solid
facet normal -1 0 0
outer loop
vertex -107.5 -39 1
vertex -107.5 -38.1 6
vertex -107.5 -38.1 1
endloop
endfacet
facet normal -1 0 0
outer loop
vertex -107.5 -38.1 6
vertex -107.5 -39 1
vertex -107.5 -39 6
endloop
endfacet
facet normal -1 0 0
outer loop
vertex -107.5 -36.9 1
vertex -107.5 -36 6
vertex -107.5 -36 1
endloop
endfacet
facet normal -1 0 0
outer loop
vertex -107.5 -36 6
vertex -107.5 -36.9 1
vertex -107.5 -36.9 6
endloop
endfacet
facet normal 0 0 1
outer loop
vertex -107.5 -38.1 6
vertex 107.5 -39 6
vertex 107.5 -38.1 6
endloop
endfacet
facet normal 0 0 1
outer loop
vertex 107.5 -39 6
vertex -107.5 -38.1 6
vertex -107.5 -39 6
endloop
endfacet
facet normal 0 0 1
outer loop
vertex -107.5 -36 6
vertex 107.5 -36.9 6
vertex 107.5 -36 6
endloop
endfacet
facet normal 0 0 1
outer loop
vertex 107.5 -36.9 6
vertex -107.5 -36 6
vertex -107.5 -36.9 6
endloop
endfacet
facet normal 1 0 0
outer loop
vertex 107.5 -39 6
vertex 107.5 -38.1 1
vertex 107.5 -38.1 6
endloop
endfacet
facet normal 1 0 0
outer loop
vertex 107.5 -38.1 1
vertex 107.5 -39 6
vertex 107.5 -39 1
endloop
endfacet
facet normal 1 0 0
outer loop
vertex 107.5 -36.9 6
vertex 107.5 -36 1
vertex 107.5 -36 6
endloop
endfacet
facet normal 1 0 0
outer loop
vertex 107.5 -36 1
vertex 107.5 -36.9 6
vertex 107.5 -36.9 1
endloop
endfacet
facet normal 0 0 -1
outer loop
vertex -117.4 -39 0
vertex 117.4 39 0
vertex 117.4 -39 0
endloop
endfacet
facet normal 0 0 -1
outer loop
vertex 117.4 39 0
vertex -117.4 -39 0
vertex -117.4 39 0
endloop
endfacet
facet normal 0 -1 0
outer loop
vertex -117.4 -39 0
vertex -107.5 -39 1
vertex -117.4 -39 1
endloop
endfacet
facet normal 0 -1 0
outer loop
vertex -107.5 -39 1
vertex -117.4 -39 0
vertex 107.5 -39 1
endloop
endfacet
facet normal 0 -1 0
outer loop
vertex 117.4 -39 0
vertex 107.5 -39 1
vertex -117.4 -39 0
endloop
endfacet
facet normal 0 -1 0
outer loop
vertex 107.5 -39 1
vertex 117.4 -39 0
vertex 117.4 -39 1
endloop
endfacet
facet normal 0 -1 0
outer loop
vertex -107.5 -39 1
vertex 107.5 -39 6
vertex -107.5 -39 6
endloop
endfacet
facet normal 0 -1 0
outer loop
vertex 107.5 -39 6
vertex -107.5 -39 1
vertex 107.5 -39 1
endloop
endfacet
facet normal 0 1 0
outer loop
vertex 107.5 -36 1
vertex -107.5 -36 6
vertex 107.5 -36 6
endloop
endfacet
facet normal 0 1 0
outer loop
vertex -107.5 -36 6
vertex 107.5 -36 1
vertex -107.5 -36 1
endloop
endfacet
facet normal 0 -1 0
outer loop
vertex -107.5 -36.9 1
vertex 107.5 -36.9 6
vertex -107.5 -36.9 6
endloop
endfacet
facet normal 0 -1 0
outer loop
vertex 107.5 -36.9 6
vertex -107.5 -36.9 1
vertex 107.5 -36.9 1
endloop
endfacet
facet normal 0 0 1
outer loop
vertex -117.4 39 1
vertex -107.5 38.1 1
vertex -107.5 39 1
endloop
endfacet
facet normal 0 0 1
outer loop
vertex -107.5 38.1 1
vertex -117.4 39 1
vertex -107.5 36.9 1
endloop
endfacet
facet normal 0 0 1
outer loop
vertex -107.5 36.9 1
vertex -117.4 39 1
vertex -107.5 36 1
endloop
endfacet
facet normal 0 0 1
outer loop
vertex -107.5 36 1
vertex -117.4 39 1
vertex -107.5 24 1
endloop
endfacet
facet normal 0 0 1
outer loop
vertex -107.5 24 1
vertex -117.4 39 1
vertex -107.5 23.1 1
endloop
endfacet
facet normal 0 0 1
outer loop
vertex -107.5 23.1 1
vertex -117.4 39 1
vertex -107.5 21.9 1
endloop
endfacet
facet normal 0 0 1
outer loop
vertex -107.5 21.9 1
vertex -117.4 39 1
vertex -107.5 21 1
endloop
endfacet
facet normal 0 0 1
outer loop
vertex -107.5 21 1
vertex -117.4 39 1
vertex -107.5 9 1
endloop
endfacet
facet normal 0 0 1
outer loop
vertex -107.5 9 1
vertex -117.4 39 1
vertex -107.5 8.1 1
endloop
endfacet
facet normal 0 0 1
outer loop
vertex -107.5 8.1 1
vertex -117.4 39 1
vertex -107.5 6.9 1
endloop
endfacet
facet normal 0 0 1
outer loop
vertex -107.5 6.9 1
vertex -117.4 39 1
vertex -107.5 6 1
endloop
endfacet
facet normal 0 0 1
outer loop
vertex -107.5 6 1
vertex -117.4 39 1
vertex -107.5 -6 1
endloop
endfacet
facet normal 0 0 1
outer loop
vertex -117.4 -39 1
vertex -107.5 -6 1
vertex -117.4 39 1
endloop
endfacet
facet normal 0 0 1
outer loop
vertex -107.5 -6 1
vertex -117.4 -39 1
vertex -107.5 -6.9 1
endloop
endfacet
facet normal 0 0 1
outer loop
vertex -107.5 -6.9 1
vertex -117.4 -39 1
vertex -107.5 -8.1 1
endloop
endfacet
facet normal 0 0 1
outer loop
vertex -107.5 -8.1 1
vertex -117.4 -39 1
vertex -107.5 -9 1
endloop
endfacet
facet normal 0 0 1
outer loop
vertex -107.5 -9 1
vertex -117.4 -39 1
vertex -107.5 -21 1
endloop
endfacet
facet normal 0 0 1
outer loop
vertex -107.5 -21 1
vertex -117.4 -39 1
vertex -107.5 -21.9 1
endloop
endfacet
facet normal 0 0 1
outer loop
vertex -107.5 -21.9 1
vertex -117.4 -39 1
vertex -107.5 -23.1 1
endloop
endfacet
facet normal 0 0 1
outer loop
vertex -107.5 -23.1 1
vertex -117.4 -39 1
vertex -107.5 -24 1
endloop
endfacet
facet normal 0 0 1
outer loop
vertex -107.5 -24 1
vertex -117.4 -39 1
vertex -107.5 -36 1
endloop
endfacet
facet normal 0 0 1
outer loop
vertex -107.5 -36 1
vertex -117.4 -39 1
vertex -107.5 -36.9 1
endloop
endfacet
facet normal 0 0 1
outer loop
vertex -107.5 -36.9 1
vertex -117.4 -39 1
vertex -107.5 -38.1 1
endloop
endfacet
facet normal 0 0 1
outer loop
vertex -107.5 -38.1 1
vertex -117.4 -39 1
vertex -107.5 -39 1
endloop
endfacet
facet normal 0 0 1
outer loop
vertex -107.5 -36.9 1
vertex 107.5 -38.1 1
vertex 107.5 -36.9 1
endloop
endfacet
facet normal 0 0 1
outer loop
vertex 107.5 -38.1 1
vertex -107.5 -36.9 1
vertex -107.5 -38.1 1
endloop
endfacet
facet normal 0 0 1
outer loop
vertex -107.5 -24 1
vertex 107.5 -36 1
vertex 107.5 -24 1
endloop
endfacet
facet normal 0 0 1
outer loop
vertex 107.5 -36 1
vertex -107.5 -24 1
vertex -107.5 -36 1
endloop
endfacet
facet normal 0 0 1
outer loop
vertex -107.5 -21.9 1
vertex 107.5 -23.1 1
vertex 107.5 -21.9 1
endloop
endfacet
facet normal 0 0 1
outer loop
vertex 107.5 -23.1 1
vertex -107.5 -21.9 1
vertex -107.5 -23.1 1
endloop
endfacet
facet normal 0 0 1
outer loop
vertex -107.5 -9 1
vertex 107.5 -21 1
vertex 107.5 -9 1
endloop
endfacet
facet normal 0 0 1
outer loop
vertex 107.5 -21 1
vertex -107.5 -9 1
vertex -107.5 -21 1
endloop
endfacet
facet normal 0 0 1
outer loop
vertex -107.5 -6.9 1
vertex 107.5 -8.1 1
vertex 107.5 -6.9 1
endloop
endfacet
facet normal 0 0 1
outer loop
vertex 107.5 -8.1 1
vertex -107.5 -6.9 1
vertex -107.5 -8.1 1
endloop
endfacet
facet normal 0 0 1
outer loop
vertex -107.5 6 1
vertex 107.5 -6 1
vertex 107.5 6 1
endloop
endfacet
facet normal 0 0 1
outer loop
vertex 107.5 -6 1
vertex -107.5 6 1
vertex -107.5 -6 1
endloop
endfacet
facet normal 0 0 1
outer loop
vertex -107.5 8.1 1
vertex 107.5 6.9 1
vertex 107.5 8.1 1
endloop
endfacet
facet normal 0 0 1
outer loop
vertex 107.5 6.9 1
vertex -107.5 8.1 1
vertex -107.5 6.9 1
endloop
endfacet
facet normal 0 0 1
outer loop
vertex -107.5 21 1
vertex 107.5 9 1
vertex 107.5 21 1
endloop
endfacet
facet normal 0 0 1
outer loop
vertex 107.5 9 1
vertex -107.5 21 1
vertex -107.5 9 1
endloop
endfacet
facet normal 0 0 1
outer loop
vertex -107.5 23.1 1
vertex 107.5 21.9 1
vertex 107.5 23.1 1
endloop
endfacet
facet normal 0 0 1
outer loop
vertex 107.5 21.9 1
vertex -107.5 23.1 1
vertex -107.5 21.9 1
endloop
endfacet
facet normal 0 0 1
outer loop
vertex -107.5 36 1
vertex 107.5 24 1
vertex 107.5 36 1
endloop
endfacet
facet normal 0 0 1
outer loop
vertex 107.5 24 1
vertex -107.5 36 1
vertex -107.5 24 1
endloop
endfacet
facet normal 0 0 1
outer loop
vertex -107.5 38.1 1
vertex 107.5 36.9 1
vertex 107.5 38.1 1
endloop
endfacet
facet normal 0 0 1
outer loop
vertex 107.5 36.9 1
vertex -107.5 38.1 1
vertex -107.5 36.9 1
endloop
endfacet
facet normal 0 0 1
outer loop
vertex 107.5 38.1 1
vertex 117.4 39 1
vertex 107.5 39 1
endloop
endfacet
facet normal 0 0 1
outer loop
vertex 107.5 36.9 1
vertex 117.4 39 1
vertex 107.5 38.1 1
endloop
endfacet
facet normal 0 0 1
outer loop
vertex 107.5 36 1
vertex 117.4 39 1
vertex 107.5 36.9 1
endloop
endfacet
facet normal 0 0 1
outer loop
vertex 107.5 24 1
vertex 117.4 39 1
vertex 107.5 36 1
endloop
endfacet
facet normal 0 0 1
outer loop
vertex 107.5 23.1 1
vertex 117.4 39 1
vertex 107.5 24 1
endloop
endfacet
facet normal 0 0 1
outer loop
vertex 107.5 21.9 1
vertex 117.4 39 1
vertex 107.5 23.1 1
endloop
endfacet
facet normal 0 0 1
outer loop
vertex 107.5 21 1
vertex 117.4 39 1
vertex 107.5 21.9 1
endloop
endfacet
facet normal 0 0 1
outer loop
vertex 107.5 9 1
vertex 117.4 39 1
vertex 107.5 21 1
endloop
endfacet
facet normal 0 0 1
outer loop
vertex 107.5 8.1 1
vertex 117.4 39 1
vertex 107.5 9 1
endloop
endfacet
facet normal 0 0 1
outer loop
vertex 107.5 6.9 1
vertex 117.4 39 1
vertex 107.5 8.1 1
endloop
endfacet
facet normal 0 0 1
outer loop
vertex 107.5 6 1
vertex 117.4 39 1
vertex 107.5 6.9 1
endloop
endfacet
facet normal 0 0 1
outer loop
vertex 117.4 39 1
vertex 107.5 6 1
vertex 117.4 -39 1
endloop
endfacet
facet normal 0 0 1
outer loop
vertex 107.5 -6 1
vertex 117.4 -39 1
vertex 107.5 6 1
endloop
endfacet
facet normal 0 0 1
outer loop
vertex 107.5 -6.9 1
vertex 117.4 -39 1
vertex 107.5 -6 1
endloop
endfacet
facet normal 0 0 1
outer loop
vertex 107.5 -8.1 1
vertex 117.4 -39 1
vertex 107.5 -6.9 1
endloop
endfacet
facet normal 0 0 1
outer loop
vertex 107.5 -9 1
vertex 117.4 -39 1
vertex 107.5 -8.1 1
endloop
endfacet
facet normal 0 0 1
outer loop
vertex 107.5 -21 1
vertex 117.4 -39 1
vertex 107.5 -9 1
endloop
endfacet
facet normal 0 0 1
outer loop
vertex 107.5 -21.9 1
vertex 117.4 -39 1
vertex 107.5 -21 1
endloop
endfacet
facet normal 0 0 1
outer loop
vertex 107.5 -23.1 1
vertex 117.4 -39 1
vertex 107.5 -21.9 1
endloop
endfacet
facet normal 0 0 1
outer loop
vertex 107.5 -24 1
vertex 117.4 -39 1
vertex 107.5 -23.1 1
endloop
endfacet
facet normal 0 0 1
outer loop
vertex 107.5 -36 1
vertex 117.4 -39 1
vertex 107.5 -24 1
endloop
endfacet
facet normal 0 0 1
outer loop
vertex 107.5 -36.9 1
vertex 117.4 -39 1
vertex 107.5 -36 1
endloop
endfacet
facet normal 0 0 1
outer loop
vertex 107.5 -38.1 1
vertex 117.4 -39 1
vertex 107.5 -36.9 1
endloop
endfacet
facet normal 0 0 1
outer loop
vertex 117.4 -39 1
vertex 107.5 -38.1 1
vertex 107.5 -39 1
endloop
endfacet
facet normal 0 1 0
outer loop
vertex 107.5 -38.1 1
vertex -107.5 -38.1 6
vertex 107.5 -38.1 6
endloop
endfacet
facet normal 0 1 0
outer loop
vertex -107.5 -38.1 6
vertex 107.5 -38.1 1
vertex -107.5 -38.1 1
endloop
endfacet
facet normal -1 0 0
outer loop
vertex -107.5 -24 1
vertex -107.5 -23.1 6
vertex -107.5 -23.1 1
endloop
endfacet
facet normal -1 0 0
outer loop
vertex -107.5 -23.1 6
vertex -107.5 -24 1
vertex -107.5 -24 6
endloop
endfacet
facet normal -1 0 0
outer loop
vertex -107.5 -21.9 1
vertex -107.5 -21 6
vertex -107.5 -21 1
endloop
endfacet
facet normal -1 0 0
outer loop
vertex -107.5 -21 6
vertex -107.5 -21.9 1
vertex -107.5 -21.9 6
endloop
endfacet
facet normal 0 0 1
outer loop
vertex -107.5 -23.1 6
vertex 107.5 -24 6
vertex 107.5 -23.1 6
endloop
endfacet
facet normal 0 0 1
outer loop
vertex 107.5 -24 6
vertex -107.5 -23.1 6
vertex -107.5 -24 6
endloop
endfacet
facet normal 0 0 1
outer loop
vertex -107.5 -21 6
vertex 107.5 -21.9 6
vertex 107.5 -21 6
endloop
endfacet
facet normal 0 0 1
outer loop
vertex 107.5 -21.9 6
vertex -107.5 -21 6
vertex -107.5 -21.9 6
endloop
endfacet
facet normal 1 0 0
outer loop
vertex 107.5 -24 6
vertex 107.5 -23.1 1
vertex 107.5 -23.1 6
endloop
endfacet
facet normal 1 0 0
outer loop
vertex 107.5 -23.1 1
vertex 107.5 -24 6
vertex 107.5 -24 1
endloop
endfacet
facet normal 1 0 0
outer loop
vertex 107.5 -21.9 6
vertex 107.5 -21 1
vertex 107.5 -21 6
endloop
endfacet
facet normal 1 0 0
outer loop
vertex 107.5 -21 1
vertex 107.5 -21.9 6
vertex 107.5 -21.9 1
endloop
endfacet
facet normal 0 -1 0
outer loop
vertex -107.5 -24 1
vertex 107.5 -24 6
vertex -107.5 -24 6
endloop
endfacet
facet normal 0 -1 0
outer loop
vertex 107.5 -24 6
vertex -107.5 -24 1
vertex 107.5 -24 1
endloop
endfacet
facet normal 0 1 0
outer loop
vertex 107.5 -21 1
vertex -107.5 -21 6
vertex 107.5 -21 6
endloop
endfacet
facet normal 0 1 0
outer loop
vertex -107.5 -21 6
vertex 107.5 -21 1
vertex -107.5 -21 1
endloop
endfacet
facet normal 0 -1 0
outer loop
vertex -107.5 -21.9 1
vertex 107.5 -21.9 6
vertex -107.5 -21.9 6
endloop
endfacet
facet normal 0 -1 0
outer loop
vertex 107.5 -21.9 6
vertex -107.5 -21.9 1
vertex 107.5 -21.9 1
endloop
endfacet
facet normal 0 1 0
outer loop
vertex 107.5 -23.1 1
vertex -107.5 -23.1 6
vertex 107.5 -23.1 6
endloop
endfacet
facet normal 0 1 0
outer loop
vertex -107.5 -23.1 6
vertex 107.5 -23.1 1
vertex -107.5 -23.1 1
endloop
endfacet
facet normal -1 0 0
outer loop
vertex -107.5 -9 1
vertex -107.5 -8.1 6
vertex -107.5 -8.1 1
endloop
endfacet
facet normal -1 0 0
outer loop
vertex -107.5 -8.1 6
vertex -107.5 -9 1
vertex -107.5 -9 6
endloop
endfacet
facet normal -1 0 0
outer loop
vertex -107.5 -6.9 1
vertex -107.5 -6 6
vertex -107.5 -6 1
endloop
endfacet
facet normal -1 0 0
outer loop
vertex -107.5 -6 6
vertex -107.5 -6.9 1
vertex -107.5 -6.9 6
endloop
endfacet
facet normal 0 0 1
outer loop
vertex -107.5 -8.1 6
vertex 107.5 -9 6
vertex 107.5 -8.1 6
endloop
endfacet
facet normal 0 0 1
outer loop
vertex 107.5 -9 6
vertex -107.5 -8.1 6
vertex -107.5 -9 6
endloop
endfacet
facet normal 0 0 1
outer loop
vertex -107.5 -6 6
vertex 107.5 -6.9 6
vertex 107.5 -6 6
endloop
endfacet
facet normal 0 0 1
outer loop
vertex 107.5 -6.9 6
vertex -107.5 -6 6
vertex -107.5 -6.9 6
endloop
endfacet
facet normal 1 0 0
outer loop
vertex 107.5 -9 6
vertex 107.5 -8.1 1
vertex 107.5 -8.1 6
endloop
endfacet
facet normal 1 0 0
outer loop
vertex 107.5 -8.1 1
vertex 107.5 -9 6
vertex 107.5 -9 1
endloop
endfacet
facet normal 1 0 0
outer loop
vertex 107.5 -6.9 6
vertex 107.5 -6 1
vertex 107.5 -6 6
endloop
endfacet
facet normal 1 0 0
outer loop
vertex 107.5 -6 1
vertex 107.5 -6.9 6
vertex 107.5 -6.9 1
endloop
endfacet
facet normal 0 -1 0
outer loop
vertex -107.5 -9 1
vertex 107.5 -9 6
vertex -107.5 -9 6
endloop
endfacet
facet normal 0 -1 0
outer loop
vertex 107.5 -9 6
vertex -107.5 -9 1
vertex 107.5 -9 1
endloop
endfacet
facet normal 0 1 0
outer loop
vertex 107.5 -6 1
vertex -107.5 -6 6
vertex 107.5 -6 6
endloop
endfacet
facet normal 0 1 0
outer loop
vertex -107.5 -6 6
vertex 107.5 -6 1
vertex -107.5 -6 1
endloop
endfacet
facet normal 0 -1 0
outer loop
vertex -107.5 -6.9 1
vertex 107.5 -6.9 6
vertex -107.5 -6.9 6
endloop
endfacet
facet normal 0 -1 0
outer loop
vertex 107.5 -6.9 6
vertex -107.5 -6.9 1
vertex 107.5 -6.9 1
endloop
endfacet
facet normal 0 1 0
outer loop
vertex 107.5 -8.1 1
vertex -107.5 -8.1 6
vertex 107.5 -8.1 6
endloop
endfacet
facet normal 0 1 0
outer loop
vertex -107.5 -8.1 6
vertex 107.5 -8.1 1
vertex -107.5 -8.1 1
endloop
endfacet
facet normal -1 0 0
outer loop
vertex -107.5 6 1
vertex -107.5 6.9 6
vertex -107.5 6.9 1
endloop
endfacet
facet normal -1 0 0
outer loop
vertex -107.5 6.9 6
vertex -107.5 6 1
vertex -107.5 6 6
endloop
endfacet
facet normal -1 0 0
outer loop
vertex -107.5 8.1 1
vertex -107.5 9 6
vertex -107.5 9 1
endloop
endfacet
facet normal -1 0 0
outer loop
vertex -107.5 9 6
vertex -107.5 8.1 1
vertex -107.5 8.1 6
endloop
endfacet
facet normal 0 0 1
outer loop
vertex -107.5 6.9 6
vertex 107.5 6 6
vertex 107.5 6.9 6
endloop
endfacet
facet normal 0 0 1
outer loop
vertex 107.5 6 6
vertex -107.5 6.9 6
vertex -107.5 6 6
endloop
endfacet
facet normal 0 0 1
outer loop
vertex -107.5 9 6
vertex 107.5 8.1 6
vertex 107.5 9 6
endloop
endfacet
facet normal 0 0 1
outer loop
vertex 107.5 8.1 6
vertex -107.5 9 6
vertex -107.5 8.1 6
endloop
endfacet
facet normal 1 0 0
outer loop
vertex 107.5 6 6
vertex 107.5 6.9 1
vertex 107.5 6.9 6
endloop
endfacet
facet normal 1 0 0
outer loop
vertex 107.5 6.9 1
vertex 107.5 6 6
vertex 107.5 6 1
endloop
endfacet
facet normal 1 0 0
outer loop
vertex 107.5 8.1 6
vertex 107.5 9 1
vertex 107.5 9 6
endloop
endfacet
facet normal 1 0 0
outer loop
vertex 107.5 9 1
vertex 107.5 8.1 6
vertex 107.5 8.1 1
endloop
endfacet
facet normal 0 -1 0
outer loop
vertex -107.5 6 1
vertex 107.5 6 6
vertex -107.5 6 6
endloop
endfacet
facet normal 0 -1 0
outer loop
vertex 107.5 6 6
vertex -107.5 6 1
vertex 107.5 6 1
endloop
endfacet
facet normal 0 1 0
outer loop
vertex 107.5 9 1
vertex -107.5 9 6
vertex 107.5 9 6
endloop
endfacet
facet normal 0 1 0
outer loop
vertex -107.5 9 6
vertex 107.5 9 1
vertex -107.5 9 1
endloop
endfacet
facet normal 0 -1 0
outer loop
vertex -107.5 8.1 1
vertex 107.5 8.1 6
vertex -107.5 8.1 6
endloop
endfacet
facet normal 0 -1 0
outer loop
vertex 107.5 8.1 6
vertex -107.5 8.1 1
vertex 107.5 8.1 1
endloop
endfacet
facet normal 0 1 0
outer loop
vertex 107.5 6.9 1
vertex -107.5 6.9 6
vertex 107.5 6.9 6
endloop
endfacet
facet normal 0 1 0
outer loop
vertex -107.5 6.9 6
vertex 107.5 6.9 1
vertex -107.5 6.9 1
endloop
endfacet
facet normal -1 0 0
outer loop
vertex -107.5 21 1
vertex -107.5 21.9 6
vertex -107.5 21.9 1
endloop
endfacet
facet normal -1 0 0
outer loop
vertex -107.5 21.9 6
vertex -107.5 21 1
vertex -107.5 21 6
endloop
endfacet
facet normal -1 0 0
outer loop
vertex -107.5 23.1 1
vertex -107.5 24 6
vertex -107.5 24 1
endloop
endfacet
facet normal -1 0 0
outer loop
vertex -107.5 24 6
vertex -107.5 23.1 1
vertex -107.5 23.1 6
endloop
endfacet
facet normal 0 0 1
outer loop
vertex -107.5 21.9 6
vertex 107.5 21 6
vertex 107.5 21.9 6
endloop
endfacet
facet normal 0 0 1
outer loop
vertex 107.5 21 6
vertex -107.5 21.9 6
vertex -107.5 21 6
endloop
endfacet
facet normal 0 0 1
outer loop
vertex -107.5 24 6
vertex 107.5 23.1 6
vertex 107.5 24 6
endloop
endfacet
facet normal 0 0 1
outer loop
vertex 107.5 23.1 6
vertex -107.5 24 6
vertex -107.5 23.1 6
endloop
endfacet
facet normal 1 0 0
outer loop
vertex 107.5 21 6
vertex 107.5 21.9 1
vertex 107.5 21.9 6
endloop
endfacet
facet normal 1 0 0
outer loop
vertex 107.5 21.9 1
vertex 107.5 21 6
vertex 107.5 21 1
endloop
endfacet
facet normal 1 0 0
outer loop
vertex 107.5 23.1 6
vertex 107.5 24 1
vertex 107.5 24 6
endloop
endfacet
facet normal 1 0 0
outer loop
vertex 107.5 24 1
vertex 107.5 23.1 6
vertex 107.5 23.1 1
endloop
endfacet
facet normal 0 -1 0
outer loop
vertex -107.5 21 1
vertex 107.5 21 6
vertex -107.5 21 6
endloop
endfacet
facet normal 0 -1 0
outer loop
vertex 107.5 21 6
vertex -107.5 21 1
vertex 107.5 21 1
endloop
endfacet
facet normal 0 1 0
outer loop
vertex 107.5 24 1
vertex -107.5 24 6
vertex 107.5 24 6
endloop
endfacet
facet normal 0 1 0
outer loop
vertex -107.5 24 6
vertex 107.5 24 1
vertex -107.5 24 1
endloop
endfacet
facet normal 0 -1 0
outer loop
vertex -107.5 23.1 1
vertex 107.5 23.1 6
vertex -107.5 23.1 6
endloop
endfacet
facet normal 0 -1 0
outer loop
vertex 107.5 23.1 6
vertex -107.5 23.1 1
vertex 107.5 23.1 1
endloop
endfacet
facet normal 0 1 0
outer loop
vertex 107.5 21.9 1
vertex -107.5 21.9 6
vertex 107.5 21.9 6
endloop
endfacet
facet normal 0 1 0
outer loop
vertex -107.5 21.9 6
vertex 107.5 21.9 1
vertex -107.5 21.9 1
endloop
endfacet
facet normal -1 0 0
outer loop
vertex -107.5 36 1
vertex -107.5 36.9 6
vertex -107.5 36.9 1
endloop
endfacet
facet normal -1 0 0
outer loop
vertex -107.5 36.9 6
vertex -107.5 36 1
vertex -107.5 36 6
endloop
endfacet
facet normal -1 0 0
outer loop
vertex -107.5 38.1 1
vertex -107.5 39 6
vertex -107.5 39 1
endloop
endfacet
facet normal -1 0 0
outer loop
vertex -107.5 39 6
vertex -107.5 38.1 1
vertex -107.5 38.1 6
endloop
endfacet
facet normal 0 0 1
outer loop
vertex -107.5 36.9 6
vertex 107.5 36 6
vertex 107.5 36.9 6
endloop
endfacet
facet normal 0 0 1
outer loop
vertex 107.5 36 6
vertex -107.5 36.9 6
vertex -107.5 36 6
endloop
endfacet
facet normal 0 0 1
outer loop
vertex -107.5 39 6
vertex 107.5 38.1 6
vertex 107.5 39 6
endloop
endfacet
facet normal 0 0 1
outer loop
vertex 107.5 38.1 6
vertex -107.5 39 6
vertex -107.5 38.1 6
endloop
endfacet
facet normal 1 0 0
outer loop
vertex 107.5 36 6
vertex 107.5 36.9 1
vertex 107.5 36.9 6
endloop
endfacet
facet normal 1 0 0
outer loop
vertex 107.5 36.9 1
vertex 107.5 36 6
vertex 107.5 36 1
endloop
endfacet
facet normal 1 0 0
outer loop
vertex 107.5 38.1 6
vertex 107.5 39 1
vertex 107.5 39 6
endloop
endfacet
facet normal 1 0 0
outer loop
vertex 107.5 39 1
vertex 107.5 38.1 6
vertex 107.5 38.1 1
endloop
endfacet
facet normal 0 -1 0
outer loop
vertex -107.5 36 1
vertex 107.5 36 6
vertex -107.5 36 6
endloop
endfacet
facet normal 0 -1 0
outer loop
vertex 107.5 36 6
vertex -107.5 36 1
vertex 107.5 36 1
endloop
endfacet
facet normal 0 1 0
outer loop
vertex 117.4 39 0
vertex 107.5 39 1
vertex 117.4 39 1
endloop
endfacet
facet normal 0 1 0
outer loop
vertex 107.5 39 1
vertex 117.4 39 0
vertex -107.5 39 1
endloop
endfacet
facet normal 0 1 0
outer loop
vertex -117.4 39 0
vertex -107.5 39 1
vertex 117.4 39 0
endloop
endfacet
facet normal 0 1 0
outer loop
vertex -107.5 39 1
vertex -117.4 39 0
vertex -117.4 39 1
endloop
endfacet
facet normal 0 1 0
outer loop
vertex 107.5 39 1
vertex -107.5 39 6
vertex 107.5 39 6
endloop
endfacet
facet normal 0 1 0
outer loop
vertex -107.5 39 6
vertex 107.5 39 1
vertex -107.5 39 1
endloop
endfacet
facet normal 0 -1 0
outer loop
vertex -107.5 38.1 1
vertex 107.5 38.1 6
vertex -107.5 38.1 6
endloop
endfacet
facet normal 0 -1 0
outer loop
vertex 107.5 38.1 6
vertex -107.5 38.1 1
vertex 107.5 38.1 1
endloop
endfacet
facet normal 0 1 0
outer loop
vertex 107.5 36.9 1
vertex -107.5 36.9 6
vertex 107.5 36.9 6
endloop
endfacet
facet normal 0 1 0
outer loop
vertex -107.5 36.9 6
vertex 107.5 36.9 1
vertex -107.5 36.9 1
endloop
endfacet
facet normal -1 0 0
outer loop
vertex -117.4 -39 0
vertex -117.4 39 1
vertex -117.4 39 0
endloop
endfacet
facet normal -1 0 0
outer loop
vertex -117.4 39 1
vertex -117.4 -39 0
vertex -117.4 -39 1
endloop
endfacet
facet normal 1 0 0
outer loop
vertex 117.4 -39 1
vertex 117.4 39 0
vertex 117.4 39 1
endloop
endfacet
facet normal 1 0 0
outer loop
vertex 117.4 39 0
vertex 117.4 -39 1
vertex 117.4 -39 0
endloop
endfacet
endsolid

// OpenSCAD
// file: filament_bank_values.scad
$fn = 128;

// designed for 604zz bearings
bearing_d = 12;
bearing_width = 4;
bearing_inner_d = 4;
bearing_shelf_d = 6.5;//6;

spoolwheel_thickness = bearing_width;
rim_width = 5;
spoke_width = 4;
spoke_count = 5;
wheel_radius = 50;
gap = 1;
detail_tolerance = 0.2; //extra gap for fitting peices
separator_thickness = 1;

wall_thickness = 6;
section_width = 15; 
section_count = 5;

separator_wall_width = ((section_width-spoolwheel_thickness)/2) - gap;
separator_wall_top_height=240;
separator_wall_bottom_height=60;
separator_wall_joint_length=5;

sidewall_length = 215;

festo_length = 4.5; //4
festo_radius = 3.25;
festo_sink_radius = festo_radius + 1.75; //1.5
festo_sink_depth = 1.2; //1

hanger_length = 15;
hanger_depth = 10;

//some utility values
top_inner_width = ((section_width+gap)*section_count);
top_inner_length = (wheel_radius+gap+wall_thickness)*2;
// main file
/****************************************************************************
contains slots to hold the separator walls and fits into the top and bottom bracket
*****************************************************************************/
include <filament_bank_values.scad>

translate([-(sidewall_length+(separator_wall_joint_length*4)-detail_tolerance)/2,-((section_width+gap)*section_count-1-gap)/2,0]) 
    cube([sidewall_length+(separator_wall_joint_length*4)-detail_tolerance,(section_width+gap)*section_count-1-gap,separator_thickness]);


adjustor = (section_count % 2 == 0) ? (-(section_count-1)/2*section_width) : (-(section_count-1)/2*section_width);
difference() {
translate([0,adjustor,0]) {
    //create the wall sleeves
    for (ii=[0:section_count]) {
        translate([0,ii*section_width-section_width/2,0]) {
            difference() {
            translate([0,0,separator_thickness*3]) {
                cube([sidewall_length, separator_thickness*3,separator_thickness*6],center=true);
                }
            translate([0,0,separator_thickness*4]) 
                cube([sidewall_length+1, separator_thickness+detail_tolerance,separator_thickness*6],center=true);
            }   

            }
    }
}
}
